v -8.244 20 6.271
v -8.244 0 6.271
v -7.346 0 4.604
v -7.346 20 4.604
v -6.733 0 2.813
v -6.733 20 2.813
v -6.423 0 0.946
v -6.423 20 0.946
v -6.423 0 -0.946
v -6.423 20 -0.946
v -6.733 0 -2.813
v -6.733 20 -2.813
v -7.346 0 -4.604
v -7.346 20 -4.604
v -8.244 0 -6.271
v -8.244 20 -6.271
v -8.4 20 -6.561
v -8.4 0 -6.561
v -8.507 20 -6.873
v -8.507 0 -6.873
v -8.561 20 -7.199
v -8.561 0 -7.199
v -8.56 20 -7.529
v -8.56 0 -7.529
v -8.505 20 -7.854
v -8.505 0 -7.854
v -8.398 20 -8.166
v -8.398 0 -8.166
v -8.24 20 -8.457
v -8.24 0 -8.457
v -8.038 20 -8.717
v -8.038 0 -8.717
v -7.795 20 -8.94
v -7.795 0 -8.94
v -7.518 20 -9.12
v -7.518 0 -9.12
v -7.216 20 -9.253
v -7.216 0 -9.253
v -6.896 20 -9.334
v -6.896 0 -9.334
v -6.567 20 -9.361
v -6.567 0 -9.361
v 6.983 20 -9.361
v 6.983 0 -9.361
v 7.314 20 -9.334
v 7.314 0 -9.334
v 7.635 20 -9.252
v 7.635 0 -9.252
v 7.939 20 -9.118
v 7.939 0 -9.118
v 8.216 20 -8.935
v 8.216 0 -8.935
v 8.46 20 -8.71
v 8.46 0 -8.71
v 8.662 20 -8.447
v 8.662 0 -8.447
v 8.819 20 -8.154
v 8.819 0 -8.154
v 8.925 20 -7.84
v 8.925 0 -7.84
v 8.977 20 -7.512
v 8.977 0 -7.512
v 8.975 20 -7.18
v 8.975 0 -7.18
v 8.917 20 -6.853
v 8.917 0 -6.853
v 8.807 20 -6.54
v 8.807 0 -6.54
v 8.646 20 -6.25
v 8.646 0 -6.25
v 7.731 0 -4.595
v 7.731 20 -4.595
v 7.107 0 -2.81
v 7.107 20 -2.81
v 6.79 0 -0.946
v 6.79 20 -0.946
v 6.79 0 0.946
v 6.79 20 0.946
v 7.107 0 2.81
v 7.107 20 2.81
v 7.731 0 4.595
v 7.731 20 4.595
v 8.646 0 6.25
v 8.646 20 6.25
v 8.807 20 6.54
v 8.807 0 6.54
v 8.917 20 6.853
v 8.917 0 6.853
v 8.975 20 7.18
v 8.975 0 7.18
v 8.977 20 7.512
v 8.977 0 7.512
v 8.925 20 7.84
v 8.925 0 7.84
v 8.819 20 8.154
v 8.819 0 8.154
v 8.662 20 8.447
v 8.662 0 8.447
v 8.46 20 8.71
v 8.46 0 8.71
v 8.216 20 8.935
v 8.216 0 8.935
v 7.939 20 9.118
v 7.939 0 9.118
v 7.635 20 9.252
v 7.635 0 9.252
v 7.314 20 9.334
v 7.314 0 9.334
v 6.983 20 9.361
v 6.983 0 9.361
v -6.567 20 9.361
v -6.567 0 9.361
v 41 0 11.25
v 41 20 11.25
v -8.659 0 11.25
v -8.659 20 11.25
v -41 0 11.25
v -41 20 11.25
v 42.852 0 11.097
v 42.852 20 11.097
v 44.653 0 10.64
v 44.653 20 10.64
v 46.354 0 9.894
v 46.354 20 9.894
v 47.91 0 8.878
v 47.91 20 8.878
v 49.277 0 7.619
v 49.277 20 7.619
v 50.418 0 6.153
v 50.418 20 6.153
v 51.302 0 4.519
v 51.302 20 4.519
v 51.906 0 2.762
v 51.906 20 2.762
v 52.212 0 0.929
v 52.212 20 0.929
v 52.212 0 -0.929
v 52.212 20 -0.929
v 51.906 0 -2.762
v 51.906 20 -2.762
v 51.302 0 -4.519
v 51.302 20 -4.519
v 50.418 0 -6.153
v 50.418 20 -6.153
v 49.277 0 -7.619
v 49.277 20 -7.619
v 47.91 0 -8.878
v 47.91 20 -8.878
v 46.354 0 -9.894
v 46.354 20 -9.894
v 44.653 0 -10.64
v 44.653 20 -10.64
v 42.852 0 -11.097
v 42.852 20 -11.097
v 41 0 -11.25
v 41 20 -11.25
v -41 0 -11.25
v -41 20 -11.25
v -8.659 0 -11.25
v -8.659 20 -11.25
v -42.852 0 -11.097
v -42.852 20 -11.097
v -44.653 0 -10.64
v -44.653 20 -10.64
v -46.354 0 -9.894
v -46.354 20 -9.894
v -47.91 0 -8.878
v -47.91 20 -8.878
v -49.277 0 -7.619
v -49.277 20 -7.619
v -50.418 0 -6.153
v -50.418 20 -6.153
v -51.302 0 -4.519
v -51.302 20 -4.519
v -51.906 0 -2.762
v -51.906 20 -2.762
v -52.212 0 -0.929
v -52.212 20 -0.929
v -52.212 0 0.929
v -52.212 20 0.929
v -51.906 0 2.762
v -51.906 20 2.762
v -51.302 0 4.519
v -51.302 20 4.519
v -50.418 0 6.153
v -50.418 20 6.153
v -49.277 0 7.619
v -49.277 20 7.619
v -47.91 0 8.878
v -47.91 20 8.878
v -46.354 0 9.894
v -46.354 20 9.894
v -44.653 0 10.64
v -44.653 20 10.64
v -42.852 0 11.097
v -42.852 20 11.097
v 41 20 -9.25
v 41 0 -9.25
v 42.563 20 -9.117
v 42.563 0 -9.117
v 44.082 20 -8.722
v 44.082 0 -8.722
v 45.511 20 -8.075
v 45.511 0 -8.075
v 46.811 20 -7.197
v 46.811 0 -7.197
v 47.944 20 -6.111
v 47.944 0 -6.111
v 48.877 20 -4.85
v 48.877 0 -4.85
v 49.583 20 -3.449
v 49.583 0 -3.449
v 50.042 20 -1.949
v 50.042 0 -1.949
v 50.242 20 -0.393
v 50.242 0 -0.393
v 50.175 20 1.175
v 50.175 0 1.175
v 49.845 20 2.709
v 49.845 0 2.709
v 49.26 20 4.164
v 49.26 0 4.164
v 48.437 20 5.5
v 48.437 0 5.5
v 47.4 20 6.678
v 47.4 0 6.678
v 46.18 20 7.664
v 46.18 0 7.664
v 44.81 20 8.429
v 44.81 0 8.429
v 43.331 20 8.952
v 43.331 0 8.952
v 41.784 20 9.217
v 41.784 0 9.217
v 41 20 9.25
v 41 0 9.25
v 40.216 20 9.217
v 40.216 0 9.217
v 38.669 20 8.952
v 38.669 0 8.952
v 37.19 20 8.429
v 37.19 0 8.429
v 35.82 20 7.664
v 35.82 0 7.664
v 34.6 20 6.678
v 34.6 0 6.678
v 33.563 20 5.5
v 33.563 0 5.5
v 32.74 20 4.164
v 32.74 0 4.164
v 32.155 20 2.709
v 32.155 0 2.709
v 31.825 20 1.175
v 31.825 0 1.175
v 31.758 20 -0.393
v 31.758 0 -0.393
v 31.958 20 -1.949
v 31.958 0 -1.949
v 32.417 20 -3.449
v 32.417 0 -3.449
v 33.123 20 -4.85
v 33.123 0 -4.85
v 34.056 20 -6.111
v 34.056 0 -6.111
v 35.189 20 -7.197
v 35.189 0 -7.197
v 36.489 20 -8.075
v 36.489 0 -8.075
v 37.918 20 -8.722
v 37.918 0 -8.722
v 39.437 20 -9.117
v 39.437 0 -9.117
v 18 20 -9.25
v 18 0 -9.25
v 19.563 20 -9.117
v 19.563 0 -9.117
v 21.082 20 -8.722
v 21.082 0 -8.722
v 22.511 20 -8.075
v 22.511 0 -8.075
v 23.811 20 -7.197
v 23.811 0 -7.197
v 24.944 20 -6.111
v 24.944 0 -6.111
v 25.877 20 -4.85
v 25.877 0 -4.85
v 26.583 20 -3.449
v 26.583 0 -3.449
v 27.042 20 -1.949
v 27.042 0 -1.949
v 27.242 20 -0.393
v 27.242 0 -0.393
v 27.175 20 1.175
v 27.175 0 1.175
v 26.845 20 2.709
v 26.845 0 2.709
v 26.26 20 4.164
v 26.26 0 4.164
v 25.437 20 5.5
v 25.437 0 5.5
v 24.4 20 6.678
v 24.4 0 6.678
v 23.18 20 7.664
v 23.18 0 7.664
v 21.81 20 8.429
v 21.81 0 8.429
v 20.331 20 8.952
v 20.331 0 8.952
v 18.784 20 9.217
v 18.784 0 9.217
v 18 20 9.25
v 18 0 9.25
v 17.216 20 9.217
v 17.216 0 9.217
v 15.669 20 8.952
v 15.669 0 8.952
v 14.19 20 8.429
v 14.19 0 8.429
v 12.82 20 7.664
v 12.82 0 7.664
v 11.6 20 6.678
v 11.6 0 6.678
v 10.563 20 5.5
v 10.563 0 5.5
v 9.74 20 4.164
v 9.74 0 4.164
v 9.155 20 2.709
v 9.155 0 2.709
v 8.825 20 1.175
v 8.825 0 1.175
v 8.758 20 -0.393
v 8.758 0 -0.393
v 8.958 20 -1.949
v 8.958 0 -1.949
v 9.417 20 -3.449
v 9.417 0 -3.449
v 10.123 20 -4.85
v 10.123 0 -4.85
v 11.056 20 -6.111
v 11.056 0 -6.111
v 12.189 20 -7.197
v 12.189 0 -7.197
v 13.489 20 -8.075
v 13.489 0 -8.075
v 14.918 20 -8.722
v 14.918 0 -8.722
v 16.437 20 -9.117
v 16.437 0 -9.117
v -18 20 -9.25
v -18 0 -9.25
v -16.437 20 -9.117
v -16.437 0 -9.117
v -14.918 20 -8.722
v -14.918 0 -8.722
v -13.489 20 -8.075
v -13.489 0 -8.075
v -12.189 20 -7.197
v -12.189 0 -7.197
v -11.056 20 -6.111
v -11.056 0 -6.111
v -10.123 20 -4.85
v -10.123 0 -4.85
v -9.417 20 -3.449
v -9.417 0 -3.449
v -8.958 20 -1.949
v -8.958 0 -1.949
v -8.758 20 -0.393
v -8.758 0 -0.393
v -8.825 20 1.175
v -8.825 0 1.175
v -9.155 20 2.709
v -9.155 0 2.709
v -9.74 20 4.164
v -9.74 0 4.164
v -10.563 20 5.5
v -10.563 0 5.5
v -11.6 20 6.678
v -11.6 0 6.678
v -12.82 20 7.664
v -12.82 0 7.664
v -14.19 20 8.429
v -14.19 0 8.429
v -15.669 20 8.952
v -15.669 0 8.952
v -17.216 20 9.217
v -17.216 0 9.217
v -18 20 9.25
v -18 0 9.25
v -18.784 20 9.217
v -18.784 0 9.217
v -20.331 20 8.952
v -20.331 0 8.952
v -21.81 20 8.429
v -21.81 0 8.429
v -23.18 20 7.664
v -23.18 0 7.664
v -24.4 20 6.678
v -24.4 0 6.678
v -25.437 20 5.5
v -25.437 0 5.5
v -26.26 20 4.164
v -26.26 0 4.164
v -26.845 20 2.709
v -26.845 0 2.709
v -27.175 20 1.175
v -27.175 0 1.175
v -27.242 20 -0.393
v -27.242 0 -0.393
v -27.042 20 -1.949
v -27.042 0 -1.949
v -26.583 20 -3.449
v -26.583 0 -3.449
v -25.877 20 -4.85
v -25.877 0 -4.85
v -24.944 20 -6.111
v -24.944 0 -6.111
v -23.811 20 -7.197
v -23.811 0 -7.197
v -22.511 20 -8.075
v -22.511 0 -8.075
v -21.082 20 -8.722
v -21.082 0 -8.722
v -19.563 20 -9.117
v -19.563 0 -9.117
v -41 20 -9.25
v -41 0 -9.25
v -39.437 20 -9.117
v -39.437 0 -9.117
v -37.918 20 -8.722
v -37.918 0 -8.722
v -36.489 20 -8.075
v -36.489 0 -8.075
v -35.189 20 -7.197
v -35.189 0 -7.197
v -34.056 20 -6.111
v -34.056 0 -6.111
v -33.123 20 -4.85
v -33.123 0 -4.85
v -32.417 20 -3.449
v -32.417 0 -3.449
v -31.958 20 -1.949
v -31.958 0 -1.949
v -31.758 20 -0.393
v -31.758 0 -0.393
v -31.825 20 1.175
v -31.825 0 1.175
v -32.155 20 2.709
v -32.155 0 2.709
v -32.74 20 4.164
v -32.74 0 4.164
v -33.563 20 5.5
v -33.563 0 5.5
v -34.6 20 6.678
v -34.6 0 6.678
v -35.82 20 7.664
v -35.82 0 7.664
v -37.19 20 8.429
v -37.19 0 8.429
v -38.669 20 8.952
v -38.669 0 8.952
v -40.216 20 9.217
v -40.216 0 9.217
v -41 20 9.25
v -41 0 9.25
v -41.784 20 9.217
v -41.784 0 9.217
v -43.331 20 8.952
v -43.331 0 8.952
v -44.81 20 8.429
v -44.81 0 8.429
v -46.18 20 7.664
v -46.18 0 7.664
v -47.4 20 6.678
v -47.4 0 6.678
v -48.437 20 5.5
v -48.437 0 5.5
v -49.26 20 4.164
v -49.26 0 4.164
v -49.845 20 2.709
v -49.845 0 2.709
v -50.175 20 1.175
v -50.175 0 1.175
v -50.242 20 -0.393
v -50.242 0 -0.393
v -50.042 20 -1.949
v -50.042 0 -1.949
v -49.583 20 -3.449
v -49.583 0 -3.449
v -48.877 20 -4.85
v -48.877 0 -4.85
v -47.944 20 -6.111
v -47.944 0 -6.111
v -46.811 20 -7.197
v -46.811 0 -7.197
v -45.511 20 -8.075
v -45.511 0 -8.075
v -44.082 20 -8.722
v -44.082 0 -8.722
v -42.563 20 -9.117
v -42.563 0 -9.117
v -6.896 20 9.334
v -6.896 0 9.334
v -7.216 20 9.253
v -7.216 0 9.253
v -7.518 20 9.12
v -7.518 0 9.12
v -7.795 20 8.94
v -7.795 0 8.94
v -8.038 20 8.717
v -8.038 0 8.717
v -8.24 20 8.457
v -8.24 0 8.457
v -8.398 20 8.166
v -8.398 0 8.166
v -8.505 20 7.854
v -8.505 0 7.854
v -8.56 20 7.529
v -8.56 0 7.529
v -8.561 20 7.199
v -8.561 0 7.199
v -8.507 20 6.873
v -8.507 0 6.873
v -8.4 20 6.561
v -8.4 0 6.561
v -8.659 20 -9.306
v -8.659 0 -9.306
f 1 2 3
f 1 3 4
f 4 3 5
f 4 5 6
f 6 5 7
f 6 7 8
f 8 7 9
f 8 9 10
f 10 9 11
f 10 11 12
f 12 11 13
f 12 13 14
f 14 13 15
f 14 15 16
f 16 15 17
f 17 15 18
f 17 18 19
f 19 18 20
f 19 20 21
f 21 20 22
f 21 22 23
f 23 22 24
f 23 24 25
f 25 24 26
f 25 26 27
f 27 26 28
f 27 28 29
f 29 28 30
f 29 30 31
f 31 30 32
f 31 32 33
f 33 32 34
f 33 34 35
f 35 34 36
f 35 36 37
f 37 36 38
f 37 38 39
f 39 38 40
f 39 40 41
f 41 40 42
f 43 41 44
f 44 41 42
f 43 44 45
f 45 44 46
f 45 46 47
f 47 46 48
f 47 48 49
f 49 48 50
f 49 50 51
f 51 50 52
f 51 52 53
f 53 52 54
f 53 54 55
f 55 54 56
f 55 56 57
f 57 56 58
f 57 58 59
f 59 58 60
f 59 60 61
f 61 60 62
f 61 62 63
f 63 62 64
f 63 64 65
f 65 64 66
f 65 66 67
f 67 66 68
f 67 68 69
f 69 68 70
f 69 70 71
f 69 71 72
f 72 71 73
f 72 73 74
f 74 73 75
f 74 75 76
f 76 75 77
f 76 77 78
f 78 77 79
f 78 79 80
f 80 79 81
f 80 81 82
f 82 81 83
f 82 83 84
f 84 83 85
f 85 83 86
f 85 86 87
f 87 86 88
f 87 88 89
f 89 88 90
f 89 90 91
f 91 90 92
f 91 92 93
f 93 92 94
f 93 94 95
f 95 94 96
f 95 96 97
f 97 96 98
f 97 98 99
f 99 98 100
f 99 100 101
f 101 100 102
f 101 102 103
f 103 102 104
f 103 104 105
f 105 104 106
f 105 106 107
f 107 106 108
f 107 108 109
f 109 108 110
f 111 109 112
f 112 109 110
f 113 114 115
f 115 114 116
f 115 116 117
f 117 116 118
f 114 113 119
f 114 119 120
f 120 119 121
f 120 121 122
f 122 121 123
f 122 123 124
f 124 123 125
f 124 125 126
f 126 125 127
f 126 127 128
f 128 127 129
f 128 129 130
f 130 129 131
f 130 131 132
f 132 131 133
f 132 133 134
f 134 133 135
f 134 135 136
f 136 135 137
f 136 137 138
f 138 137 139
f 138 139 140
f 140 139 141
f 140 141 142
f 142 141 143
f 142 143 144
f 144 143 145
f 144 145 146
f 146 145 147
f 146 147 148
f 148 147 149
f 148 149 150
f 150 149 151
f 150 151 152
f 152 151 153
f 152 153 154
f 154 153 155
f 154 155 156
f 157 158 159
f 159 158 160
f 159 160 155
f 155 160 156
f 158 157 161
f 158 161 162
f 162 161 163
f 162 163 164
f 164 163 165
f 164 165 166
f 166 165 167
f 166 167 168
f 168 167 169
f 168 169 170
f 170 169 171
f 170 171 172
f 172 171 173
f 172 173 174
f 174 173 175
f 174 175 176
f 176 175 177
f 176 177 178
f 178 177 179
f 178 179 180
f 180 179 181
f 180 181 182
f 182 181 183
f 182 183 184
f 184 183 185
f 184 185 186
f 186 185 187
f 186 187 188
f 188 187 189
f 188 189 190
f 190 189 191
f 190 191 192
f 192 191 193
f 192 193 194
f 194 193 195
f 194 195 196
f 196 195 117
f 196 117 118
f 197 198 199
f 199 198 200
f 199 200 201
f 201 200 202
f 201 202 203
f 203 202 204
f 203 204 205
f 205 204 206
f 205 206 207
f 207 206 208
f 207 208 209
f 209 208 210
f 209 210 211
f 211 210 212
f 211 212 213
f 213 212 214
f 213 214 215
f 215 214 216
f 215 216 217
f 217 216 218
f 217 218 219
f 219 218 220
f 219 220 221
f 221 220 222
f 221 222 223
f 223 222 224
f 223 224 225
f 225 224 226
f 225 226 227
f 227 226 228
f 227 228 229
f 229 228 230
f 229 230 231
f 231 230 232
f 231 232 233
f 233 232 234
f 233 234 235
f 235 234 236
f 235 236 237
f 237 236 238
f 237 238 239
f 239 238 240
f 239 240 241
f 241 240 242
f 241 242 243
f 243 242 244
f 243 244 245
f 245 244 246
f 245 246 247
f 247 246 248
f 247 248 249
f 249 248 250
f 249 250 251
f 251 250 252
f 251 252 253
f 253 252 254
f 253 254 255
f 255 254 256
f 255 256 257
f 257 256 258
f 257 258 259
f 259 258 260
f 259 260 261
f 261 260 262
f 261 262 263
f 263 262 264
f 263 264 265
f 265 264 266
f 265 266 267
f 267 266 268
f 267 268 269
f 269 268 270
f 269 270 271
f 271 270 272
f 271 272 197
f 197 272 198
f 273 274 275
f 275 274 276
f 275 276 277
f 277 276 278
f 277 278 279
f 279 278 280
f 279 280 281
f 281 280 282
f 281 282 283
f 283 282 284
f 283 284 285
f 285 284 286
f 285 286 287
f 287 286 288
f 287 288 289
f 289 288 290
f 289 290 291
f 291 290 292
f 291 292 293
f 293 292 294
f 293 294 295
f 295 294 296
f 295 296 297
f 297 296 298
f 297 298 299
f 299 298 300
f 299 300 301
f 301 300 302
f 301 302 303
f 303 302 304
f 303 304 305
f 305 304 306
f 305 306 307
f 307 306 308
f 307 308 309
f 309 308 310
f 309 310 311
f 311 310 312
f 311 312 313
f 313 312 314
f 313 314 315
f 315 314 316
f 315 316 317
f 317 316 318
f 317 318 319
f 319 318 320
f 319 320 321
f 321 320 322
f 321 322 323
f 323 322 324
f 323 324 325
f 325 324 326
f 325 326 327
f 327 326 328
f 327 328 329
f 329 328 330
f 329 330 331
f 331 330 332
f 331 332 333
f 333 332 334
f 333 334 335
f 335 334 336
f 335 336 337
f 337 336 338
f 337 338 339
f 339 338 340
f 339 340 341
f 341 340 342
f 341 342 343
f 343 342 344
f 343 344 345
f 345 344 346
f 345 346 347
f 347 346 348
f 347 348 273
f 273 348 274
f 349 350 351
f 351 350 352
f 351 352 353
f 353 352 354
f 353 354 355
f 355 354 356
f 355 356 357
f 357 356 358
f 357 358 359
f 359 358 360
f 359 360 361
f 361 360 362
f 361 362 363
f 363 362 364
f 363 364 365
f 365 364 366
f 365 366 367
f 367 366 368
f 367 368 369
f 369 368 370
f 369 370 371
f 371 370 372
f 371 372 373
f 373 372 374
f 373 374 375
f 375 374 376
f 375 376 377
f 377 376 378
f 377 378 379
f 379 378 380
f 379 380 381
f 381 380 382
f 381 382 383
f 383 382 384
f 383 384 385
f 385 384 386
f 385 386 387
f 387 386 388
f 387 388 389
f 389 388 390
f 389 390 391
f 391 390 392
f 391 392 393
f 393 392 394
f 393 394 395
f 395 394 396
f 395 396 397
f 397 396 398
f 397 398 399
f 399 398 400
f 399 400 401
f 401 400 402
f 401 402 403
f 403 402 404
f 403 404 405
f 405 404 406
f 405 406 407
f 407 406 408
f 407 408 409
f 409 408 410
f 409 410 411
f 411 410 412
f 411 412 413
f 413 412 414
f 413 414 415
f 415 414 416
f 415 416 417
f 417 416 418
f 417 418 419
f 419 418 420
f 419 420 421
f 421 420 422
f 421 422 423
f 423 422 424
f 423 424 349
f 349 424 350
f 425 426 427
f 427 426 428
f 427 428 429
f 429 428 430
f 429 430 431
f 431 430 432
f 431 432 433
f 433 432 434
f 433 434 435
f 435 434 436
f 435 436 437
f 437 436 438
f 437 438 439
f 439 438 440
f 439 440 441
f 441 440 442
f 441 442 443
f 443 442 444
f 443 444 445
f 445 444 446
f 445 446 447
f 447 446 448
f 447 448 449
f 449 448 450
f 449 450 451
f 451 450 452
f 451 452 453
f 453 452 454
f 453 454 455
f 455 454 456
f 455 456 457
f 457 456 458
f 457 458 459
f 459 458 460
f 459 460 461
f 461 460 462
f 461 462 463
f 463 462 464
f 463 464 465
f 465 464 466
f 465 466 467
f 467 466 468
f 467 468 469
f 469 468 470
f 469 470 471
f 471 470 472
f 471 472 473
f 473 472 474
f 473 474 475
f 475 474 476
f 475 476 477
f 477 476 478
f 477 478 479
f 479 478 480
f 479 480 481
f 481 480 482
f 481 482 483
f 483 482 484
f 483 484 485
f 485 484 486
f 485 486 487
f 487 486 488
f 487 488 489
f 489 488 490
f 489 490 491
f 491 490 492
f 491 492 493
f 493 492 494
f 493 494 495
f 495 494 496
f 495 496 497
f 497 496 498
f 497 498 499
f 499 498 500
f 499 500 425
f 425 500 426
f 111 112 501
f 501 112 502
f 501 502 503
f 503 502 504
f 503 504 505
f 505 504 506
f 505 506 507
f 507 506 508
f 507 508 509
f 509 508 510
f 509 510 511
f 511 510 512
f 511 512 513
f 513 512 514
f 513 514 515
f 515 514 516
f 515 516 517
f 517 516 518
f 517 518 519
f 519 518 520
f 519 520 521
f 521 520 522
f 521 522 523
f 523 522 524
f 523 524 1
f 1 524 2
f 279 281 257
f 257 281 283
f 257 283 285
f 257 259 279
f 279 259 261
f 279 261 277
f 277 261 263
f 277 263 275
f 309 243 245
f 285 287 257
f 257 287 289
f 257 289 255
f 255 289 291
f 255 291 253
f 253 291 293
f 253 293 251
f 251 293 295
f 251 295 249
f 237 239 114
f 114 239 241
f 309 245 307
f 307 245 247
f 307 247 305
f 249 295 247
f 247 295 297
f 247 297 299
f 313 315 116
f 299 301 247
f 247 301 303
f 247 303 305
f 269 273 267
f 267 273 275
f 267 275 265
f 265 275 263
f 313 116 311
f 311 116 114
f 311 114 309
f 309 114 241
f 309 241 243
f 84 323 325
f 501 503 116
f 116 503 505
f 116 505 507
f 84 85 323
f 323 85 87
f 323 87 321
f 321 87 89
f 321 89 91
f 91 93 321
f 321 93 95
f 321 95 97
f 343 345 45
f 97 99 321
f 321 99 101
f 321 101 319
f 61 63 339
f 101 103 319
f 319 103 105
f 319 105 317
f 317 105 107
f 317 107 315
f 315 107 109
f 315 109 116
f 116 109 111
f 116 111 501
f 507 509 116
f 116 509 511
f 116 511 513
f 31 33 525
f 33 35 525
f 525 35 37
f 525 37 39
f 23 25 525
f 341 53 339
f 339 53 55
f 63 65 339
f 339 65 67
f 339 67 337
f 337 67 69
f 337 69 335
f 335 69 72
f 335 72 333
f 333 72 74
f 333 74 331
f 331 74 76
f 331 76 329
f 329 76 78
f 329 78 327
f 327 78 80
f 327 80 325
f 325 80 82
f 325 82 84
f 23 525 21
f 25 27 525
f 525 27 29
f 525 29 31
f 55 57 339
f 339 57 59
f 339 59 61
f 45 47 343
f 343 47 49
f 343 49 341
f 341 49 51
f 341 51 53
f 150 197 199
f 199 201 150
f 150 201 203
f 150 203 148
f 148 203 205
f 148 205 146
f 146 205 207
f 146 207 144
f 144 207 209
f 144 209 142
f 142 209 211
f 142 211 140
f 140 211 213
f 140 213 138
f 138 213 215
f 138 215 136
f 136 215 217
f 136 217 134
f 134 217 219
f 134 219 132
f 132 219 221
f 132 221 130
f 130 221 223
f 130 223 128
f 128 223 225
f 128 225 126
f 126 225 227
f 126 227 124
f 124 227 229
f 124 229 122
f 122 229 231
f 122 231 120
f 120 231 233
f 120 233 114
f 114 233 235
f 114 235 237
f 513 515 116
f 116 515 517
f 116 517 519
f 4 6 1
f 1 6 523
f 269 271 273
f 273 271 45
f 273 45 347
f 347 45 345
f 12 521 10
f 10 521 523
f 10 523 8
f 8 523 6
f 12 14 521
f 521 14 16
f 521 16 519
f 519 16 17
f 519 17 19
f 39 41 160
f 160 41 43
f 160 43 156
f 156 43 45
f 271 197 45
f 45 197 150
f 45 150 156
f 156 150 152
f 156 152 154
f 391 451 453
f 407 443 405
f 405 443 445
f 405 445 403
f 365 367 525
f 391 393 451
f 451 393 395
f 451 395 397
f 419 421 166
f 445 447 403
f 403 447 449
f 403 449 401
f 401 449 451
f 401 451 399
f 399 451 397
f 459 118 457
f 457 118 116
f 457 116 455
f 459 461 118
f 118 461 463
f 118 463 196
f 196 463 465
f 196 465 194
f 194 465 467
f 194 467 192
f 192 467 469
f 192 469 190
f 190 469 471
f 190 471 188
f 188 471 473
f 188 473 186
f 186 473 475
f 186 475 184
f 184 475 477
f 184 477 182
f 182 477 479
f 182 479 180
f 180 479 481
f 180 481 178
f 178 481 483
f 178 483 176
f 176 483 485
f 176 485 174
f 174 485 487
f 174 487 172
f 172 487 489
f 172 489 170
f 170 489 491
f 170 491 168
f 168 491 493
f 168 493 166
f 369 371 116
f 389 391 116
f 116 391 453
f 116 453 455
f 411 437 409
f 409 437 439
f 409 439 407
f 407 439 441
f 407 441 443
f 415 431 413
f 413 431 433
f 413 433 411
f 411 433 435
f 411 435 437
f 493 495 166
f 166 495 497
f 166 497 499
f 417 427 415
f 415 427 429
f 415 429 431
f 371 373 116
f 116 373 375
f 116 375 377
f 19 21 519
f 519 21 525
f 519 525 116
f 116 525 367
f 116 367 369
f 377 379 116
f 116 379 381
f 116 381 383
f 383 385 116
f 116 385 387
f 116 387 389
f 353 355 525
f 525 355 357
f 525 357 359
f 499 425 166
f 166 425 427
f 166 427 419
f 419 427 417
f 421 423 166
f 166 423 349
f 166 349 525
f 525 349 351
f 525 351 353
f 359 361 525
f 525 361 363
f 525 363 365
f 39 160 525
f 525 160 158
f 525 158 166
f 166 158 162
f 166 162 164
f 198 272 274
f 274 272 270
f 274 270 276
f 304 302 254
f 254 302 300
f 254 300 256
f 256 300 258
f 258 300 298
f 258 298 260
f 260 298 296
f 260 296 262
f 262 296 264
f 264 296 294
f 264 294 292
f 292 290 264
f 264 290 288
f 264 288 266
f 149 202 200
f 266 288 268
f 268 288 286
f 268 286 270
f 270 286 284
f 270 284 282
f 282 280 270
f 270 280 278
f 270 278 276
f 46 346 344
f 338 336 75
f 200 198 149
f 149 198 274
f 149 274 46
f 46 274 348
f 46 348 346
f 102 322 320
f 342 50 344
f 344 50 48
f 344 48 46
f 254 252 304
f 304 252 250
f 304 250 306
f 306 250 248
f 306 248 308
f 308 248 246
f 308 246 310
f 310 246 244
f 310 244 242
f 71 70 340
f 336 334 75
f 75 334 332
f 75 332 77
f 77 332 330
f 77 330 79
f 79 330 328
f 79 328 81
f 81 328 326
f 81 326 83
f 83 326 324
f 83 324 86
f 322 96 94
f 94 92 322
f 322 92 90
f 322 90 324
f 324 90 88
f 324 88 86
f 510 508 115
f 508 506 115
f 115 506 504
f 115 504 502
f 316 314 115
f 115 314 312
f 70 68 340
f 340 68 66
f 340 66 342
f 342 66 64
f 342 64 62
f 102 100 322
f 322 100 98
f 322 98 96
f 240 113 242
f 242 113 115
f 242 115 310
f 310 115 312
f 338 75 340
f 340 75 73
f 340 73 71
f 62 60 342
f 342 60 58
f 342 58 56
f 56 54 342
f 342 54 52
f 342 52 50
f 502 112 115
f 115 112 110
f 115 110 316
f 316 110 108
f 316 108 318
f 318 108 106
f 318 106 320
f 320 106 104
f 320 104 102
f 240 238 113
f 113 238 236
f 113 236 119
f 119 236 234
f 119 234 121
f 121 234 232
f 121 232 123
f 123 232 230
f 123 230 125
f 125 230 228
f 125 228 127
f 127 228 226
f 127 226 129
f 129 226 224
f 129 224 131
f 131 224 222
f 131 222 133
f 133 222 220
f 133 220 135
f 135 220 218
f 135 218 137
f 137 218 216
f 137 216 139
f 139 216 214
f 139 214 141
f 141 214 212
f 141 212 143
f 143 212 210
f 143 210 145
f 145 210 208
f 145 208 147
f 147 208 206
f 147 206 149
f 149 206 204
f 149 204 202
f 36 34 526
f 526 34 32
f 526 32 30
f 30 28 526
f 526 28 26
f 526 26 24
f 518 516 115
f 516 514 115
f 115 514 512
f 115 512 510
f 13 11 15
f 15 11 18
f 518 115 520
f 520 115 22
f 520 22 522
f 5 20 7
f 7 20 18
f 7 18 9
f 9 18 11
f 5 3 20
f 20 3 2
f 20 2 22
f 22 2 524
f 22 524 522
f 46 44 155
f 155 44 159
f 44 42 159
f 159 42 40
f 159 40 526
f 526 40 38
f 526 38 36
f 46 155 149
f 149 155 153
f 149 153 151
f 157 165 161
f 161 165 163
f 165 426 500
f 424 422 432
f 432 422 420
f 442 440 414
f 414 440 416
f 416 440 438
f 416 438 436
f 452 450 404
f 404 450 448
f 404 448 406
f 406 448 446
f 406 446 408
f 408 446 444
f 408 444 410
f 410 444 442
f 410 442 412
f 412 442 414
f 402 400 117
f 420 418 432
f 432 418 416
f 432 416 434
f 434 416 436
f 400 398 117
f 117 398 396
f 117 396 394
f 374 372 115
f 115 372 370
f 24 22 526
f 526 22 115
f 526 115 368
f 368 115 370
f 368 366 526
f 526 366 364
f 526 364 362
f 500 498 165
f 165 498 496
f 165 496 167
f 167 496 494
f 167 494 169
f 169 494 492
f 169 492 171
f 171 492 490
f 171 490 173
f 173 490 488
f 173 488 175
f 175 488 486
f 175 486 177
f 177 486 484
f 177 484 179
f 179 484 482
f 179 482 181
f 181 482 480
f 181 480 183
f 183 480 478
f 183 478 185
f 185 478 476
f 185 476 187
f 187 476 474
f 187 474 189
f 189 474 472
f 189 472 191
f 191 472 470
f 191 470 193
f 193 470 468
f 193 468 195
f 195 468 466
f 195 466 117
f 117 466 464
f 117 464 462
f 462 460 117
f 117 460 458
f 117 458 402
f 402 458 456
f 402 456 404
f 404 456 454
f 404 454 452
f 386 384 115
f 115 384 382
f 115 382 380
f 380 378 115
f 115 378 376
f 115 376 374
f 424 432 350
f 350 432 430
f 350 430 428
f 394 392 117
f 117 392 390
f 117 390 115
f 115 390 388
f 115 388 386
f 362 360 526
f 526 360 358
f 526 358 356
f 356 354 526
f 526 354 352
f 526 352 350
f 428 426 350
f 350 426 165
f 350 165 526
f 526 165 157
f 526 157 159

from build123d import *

# Parameters (mm, degrees)
SKETCH3_R           = 9.25
BOSS_EXTRUDE1_DEPTH = 20


with BuildPart() as part:
    # Sketch3 → Boss-Extrude1 (new body)
    with BuildSketch(Plane(origin=(0, 0, 0), x_dir=(1, 0, 0), z_dir=(0, 1, 0))):
        with BuildLine():
            Line((-41, -11.25), (41, -11.25))
            ThreePointArc((41, -11.25), (52.25, 0), (41, 11.25))
            Line((41, 11.25), (-41, 11.25))
            ThreePointArc((-41, 11.25), (-52.25, 0), (-41, -11.25))
        make_face()
        with Locations((-41, 0)):
            Circle(SKETCH3_R, mode=Mode.SUBTRACT)
        with Locations((-18, 0)):
            Circle(SKETCH3_R, mode=Mode.SUBTRACT)
        with Locations((18, 0)):
            Circle(SKETCH3_R, mode=Mode.SUBTRACT)
        with Locations((41, 0)):
            Circle(SKETCH3_R, mode=Mode.SUBTRACT)
        with BuildLine():
            ThreePointArc((-8.243682204, -6.270576132), (-6.383696467, 0), (-8.243682204, 6.270576132))
            ThreePointArc((-8.243682204, 6.270576132), (-8.325149731, 8.314769866), (-6.567157985, 9.361111111))
            Line((-6.567157985, 9.361111111), (6.982897694, 9.361111111))
            ThreePointArc((6.982897694, 9.361111111), (8.746731902, 8.303920153), (8.645856533, 6.25))
            ThreePointArc((8.645856533, 6.25), (6.75, 0), (8.645856533, -6.25))
            ThreePointArc((8.645856533, -6.25), (8.746731902, -8.303920153), (6.982897694, -9.361111111))
            Line((6.982897694, -9.361111111), (-6.567157985, -9.361111111))
            ThreePointArc((-6.567157985, -9.361111111), (-8.325149731, -8.314769866), (-8.243682204, -6.270576132))
        make_face(mode=Mode.SUBTRACT)
    extrude(amount=BOSS_EXTRUDE1_DEPTH)


solid = part.part
